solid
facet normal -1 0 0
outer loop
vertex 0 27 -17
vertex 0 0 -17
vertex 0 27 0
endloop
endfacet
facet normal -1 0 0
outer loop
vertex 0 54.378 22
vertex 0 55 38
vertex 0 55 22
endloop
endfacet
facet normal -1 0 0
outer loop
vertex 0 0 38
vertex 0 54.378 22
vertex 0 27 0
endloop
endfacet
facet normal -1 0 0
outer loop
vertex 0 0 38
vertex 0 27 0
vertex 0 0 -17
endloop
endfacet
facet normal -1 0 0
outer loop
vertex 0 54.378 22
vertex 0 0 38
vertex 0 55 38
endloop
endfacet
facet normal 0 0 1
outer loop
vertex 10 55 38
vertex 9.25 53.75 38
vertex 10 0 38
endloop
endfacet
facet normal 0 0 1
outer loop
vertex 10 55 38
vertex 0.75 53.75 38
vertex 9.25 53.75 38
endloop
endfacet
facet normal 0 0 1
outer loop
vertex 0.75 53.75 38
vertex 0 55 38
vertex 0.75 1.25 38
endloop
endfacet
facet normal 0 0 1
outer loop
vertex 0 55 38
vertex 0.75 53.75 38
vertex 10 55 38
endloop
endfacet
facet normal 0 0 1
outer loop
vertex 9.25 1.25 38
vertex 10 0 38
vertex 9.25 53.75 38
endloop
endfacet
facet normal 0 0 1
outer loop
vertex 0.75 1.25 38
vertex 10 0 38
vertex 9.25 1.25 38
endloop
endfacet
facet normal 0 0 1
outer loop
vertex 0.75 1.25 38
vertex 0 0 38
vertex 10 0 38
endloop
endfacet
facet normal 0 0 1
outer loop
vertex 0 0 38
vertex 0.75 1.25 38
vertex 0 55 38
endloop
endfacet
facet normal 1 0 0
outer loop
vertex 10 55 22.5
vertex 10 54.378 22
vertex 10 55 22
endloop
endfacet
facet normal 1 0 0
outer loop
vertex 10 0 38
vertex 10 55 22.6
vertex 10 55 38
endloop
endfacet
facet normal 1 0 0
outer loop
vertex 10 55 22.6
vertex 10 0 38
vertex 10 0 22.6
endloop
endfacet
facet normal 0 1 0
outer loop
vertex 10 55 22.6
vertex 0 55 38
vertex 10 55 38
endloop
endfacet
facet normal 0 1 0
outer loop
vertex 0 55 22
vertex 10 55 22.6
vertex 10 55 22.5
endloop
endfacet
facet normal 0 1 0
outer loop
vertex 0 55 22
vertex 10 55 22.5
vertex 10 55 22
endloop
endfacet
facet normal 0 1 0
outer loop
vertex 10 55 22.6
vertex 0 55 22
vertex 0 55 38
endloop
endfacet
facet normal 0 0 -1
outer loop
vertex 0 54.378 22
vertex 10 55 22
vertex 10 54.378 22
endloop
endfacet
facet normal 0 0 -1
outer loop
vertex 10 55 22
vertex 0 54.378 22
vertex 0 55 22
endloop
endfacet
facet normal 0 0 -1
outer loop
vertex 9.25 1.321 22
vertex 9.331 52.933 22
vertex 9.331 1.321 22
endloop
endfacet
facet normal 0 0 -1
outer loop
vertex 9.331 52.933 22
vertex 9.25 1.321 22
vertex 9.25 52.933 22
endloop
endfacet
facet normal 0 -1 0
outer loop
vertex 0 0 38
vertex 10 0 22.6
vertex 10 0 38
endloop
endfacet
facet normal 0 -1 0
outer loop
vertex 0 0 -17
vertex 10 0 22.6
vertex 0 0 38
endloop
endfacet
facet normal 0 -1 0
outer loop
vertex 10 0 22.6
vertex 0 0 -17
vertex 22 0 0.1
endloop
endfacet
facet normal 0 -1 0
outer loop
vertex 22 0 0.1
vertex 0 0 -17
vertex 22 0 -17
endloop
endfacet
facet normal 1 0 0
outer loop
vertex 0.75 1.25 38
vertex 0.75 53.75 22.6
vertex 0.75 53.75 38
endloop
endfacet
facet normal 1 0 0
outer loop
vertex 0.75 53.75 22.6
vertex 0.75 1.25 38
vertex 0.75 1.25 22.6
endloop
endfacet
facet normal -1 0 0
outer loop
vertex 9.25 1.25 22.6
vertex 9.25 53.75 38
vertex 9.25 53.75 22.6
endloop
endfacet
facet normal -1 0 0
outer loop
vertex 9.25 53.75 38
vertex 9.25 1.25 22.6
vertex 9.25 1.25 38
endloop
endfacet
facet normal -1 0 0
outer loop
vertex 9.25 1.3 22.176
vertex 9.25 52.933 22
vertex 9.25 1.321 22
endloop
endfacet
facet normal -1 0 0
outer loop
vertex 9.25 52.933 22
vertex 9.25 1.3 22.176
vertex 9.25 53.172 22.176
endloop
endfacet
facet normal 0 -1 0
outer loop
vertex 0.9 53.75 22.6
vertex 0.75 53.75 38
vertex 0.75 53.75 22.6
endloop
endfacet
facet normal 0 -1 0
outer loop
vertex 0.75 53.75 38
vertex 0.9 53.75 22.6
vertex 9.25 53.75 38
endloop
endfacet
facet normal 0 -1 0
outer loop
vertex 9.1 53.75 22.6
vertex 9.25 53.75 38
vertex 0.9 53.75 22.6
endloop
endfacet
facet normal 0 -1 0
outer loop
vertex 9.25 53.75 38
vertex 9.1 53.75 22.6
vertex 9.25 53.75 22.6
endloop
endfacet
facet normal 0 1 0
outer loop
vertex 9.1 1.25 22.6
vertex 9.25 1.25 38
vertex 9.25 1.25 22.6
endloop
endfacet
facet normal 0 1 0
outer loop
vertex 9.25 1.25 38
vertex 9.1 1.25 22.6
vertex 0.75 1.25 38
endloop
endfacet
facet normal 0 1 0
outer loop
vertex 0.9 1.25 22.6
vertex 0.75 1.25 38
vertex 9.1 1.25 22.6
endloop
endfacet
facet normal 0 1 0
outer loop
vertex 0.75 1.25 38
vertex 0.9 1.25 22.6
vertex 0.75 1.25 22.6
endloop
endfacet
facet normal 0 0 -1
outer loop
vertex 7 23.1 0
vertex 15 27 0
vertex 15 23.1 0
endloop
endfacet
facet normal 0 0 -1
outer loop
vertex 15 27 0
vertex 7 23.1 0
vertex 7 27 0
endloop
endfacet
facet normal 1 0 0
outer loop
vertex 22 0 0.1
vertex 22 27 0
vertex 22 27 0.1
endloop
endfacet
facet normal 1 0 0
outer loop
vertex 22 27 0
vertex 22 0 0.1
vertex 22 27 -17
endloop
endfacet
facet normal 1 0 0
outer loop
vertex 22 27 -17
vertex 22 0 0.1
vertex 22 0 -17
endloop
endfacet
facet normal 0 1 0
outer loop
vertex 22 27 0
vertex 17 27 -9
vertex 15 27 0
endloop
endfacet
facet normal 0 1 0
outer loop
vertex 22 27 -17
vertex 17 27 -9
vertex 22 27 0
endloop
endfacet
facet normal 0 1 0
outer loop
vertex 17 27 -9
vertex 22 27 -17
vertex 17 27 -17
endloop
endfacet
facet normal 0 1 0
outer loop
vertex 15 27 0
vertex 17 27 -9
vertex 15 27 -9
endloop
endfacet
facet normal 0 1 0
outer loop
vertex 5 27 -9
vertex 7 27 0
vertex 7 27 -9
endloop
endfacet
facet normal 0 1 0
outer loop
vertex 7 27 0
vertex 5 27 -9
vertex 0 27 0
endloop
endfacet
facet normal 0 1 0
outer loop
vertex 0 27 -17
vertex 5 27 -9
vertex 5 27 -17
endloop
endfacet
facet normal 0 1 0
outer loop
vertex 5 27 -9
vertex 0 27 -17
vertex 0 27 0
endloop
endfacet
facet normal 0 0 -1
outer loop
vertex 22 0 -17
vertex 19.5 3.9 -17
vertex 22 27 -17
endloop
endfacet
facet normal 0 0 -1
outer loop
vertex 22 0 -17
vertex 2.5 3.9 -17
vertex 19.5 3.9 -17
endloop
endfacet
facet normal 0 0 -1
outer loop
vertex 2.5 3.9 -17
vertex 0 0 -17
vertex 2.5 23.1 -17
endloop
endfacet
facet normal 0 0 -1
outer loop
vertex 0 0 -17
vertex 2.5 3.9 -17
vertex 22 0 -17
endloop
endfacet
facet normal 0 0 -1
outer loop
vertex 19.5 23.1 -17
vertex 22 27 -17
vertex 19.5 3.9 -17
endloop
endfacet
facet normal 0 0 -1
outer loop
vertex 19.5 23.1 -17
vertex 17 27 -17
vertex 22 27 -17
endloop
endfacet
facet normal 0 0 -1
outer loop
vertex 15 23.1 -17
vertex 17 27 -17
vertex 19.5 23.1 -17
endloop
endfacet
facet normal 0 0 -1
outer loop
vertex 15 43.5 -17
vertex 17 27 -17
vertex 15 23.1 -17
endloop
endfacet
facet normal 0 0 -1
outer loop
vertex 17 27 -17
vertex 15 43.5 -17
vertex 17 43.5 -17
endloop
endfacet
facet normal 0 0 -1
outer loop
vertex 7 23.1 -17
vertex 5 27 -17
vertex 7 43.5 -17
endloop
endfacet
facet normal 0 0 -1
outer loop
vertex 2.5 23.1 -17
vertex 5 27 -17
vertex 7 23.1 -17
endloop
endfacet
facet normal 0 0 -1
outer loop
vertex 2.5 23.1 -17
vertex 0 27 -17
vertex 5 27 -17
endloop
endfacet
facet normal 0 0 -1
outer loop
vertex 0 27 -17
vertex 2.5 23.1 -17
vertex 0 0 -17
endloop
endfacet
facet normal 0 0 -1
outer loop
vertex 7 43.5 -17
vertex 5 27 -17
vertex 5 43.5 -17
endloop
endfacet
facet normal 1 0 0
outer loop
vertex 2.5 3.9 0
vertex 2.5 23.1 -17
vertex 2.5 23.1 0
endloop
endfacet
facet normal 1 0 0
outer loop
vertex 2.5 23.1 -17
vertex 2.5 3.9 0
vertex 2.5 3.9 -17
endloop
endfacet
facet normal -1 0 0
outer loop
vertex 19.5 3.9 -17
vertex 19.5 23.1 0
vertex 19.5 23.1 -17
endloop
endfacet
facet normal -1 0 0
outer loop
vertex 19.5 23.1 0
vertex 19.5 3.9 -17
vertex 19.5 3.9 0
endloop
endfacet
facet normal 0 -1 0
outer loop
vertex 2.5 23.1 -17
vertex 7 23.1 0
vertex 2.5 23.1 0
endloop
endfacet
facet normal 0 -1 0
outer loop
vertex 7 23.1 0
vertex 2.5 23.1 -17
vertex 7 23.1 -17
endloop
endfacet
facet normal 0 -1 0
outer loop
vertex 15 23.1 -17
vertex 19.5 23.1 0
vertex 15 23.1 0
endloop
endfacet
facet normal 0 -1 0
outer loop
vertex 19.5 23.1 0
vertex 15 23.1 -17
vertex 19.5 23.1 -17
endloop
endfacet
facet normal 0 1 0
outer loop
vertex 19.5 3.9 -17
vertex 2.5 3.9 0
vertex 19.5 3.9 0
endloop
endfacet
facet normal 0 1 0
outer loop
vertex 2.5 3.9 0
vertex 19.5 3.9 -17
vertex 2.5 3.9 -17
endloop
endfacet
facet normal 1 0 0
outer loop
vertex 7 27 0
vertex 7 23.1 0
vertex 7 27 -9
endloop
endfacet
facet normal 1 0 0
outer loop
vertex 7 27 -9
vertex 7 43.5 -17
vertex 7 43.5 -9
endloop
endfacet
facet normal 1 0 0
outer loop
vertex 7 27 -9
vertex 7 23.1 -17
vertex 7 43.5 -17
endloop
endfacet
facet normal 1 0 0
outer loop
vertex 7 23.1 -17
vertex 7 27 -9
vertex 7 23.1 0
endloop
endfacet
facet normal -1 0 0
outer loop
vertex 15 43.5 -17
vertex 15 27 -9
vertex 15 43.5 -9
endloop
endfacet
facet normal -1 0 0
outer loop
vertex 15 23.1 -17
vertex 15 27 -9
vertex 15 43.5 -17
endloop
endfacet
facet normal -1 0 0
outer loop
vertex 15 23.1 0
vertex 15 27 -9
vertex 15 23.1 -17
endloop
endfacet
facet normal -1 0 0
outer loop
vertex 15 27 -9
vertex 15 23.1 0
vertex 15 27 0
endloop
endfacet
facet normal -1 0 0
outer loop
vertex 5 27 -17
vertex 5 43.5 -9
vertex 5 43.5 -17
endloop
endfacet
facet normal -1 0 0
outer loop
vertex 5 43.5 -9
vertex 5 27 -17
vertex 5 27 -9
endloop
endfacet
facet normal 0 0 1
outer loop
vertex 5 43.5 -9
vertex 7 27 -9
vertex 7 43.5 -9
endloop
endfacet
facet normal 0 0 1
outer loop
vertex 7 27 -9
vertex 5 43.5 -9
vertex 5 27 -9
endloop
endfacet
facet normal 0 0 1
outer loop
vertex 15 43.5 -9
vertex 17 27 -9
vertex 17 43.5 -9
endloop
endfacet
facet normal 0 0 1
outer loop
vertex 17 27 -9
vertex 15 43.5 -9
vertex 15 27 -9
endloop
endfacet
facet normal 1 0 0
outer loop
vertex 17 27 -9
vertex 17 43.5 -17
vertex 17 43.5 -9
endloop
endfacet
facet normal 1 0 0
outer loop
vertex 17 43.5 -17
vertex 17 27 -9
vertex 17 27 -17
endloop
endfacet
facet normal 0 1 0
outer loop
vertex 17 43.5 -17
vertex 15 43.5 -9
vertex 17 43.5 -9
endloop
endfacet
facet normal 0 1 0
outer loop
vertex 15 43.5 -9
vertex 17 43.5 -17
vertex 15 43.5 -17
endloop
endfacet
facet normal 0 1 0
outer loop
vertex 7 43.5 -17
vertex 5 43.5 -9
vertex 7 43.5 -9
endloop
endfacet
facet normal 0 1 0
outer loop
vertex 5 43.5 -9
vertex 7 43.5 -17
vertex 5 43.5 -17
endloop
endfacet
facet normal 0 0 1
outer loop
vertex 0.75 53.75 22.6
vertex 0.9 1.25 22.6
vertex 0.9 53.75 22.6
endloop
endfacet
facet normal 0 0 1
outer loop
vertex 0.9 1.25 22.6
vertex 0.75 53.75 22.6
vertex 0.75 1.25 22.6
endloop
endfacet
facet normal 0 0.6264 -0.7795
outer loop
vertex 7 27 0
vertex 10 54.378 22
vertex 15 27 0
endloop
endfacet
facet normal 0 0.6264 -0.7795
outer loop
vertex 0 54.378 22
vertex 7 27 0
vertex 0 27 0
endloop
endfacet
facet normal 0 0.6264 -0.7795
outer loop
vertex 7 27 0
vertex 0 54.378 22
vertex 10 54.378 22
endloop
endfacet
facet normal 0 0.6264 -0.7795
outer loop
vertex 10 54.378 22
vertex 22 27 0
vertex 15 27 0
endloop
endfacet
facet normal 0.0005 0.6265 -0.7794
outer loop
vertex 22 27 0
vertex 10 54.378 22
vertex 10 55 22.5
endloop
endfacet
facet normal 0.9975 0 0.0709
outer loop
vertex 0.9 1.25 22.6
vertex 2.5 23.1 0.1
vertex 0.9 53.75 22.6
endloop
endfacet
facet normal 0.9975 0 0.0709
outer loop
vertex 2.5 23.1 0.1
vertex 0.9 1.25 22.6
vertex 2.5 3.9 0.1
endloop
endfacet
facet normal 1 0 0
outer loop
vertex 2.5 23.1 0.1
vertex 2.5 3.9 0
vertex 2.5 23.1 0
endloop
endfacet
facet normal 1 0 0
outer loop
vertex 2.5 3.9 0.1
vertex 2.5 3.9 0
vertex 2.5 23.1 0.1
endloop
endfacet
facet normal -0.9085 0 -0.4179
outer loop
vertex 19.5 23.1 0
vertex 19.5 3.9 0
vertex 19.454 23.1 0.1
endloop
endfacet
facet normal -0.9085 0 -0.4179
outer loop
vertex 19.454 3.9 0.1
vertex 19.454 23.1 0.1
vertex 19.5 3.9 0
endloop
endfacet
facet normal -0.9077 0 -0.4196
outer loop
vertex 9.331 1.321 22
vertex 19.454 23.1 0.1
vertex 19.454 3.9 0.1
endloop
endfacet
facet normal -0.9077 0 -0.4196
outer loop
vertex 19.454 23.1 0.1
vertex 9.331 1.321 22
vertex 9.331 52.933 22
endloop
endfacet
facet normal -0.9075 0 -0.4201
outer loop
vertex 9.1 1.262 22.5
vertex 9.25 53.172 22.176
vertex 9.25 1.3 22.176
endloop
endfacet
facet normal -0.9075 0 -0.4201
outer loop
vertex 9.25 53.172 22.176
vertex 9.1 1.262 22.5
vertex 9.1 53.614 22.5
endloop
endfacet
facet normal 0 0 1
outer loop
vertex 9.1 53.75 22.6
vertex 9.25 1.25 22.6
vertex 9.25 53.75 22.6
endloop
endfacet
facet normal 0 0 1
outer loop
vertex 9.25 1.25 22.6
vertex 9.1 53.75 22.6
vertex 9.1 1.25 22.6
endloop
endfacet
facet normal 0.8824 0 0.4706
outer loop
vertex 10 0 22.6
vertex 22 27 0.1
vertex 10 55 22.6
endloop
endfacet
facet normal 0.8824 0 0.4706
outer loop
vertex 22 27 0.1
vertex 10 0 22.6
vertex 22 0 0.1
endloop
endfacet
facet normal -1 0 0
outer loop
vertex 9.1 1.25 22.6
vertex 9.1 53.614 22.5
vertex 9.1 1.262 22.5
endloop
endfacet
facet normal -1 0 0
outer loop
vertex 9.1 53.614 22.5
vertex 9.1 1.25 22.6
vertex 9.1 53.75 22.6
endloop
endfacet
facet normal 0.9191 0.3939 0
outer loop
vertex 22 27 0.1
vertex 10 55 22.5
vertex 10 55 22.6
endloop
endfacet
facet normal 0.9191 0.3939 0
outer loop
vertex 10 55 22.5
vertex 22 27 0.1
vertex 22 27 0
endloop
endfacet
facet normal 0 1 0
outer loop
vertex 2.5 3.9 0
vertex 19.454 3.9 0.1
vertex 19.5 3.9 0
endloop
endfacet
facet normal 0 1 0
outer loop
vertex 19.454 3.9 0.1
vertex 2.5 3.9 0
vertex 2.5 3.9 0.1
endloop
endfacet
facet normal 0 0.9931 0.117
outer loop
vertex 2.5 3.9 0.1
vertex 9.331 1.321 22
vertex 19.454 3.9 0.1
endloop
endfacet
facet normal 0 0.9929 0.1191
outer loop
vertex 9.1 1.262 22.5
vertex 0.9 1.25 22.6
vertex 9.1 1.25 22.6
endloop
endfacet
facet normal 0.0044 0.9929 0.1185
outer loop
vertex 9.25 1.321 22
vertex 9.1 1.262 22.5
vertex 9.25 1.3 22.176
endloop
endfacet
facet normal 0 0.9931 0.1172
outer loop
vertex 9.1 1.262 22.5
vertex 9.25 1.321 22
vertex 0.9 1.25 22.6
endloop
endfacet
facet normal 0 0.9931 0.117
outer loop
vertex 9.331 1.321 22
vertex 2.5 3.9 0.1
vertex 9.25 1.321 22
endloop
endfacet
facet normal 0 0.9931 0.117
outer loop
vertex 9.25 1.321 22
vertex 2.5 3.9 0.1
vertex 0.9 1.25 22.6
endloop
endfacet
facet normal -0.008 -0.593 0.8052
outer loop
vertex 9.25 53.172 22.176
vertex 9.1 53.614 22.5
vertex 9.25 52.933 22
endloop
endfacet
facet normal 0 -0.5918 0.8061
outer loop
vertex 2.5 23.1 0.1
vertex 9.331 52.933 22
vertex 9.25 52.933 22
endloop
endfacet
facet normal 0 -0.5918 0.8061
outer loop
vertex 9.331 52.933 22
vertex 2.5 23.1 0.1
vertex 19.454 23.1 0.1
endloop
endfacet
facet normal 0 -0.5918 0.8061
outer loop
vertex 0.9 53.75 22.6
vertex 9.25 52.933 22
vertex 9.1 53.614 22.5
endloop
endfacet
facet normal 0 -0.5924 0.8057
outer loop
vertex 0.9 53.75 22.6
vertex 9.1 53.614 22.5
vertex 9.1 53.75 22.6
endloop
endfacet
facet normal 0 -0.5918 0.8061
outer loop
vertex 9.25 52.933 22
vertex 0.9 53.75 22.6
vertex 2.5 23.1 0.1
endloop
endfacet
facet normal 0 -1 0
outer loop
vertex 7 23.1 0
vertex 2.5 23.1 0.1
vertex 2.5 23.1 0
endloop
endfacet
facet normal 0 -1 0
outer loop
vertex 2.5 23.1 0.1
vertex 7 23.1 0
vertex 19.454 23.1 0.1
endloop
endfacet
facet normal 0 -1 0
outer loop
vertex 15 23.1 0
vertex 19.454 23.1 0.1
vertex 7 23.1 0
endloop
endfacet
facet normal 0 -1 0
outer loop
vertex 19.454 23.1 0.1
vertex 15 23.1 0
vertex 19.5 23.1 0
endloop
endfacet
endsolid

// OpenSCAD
translate([5,55/2,30])
difference(){
    cube([10, 55, 16], center=true);
    cube([8.5, 52.5, 18], center=true);
}


translate([11,27/2,-1*17/2])
difference(){
    cube([22, 27, 17], center=true);
    cube([17, 19.2, 12+7], center=true);
    translate([0, 10, 0])
        cube([8, 20, 12+7], center=true);
}
translate([11,20+27/2,-1*17/2-4.5])
difference(){
    cube([12, 20, 8], center=true);
    cube([8, 21, 12], center=true);
}




hull(){
    cube([(22-17)/2, 27, 0.1]);
    translate([0,0,30-15/2])
        cube([(10-8.2)/2, 55, 0.1]);

}


hull(){
    translate([22-(22-17)/2,0,0])
        cube([(22-17)/2, 27, 0.1]);
    translate([10-(10-8.2)/2,0,30-15/2])
        cube([(10-8.2)/2, 55, 0.1]);

}

hull(){
    cube([22, (27-19.2)/2, 0.1]);
    translate([0,0,30-15/2])
        cube([10, (55-52.5)/2, 0.1]);

}

hull(){
    translate([0,27-(27-19.2)/2,0])
    cube([22, (27-19.2)/2, 0.1]);
    translate([0,55-(55-52.5)/2,30-15/2])
        cube([10, (55-52.5)/2, 0.1]);

}
